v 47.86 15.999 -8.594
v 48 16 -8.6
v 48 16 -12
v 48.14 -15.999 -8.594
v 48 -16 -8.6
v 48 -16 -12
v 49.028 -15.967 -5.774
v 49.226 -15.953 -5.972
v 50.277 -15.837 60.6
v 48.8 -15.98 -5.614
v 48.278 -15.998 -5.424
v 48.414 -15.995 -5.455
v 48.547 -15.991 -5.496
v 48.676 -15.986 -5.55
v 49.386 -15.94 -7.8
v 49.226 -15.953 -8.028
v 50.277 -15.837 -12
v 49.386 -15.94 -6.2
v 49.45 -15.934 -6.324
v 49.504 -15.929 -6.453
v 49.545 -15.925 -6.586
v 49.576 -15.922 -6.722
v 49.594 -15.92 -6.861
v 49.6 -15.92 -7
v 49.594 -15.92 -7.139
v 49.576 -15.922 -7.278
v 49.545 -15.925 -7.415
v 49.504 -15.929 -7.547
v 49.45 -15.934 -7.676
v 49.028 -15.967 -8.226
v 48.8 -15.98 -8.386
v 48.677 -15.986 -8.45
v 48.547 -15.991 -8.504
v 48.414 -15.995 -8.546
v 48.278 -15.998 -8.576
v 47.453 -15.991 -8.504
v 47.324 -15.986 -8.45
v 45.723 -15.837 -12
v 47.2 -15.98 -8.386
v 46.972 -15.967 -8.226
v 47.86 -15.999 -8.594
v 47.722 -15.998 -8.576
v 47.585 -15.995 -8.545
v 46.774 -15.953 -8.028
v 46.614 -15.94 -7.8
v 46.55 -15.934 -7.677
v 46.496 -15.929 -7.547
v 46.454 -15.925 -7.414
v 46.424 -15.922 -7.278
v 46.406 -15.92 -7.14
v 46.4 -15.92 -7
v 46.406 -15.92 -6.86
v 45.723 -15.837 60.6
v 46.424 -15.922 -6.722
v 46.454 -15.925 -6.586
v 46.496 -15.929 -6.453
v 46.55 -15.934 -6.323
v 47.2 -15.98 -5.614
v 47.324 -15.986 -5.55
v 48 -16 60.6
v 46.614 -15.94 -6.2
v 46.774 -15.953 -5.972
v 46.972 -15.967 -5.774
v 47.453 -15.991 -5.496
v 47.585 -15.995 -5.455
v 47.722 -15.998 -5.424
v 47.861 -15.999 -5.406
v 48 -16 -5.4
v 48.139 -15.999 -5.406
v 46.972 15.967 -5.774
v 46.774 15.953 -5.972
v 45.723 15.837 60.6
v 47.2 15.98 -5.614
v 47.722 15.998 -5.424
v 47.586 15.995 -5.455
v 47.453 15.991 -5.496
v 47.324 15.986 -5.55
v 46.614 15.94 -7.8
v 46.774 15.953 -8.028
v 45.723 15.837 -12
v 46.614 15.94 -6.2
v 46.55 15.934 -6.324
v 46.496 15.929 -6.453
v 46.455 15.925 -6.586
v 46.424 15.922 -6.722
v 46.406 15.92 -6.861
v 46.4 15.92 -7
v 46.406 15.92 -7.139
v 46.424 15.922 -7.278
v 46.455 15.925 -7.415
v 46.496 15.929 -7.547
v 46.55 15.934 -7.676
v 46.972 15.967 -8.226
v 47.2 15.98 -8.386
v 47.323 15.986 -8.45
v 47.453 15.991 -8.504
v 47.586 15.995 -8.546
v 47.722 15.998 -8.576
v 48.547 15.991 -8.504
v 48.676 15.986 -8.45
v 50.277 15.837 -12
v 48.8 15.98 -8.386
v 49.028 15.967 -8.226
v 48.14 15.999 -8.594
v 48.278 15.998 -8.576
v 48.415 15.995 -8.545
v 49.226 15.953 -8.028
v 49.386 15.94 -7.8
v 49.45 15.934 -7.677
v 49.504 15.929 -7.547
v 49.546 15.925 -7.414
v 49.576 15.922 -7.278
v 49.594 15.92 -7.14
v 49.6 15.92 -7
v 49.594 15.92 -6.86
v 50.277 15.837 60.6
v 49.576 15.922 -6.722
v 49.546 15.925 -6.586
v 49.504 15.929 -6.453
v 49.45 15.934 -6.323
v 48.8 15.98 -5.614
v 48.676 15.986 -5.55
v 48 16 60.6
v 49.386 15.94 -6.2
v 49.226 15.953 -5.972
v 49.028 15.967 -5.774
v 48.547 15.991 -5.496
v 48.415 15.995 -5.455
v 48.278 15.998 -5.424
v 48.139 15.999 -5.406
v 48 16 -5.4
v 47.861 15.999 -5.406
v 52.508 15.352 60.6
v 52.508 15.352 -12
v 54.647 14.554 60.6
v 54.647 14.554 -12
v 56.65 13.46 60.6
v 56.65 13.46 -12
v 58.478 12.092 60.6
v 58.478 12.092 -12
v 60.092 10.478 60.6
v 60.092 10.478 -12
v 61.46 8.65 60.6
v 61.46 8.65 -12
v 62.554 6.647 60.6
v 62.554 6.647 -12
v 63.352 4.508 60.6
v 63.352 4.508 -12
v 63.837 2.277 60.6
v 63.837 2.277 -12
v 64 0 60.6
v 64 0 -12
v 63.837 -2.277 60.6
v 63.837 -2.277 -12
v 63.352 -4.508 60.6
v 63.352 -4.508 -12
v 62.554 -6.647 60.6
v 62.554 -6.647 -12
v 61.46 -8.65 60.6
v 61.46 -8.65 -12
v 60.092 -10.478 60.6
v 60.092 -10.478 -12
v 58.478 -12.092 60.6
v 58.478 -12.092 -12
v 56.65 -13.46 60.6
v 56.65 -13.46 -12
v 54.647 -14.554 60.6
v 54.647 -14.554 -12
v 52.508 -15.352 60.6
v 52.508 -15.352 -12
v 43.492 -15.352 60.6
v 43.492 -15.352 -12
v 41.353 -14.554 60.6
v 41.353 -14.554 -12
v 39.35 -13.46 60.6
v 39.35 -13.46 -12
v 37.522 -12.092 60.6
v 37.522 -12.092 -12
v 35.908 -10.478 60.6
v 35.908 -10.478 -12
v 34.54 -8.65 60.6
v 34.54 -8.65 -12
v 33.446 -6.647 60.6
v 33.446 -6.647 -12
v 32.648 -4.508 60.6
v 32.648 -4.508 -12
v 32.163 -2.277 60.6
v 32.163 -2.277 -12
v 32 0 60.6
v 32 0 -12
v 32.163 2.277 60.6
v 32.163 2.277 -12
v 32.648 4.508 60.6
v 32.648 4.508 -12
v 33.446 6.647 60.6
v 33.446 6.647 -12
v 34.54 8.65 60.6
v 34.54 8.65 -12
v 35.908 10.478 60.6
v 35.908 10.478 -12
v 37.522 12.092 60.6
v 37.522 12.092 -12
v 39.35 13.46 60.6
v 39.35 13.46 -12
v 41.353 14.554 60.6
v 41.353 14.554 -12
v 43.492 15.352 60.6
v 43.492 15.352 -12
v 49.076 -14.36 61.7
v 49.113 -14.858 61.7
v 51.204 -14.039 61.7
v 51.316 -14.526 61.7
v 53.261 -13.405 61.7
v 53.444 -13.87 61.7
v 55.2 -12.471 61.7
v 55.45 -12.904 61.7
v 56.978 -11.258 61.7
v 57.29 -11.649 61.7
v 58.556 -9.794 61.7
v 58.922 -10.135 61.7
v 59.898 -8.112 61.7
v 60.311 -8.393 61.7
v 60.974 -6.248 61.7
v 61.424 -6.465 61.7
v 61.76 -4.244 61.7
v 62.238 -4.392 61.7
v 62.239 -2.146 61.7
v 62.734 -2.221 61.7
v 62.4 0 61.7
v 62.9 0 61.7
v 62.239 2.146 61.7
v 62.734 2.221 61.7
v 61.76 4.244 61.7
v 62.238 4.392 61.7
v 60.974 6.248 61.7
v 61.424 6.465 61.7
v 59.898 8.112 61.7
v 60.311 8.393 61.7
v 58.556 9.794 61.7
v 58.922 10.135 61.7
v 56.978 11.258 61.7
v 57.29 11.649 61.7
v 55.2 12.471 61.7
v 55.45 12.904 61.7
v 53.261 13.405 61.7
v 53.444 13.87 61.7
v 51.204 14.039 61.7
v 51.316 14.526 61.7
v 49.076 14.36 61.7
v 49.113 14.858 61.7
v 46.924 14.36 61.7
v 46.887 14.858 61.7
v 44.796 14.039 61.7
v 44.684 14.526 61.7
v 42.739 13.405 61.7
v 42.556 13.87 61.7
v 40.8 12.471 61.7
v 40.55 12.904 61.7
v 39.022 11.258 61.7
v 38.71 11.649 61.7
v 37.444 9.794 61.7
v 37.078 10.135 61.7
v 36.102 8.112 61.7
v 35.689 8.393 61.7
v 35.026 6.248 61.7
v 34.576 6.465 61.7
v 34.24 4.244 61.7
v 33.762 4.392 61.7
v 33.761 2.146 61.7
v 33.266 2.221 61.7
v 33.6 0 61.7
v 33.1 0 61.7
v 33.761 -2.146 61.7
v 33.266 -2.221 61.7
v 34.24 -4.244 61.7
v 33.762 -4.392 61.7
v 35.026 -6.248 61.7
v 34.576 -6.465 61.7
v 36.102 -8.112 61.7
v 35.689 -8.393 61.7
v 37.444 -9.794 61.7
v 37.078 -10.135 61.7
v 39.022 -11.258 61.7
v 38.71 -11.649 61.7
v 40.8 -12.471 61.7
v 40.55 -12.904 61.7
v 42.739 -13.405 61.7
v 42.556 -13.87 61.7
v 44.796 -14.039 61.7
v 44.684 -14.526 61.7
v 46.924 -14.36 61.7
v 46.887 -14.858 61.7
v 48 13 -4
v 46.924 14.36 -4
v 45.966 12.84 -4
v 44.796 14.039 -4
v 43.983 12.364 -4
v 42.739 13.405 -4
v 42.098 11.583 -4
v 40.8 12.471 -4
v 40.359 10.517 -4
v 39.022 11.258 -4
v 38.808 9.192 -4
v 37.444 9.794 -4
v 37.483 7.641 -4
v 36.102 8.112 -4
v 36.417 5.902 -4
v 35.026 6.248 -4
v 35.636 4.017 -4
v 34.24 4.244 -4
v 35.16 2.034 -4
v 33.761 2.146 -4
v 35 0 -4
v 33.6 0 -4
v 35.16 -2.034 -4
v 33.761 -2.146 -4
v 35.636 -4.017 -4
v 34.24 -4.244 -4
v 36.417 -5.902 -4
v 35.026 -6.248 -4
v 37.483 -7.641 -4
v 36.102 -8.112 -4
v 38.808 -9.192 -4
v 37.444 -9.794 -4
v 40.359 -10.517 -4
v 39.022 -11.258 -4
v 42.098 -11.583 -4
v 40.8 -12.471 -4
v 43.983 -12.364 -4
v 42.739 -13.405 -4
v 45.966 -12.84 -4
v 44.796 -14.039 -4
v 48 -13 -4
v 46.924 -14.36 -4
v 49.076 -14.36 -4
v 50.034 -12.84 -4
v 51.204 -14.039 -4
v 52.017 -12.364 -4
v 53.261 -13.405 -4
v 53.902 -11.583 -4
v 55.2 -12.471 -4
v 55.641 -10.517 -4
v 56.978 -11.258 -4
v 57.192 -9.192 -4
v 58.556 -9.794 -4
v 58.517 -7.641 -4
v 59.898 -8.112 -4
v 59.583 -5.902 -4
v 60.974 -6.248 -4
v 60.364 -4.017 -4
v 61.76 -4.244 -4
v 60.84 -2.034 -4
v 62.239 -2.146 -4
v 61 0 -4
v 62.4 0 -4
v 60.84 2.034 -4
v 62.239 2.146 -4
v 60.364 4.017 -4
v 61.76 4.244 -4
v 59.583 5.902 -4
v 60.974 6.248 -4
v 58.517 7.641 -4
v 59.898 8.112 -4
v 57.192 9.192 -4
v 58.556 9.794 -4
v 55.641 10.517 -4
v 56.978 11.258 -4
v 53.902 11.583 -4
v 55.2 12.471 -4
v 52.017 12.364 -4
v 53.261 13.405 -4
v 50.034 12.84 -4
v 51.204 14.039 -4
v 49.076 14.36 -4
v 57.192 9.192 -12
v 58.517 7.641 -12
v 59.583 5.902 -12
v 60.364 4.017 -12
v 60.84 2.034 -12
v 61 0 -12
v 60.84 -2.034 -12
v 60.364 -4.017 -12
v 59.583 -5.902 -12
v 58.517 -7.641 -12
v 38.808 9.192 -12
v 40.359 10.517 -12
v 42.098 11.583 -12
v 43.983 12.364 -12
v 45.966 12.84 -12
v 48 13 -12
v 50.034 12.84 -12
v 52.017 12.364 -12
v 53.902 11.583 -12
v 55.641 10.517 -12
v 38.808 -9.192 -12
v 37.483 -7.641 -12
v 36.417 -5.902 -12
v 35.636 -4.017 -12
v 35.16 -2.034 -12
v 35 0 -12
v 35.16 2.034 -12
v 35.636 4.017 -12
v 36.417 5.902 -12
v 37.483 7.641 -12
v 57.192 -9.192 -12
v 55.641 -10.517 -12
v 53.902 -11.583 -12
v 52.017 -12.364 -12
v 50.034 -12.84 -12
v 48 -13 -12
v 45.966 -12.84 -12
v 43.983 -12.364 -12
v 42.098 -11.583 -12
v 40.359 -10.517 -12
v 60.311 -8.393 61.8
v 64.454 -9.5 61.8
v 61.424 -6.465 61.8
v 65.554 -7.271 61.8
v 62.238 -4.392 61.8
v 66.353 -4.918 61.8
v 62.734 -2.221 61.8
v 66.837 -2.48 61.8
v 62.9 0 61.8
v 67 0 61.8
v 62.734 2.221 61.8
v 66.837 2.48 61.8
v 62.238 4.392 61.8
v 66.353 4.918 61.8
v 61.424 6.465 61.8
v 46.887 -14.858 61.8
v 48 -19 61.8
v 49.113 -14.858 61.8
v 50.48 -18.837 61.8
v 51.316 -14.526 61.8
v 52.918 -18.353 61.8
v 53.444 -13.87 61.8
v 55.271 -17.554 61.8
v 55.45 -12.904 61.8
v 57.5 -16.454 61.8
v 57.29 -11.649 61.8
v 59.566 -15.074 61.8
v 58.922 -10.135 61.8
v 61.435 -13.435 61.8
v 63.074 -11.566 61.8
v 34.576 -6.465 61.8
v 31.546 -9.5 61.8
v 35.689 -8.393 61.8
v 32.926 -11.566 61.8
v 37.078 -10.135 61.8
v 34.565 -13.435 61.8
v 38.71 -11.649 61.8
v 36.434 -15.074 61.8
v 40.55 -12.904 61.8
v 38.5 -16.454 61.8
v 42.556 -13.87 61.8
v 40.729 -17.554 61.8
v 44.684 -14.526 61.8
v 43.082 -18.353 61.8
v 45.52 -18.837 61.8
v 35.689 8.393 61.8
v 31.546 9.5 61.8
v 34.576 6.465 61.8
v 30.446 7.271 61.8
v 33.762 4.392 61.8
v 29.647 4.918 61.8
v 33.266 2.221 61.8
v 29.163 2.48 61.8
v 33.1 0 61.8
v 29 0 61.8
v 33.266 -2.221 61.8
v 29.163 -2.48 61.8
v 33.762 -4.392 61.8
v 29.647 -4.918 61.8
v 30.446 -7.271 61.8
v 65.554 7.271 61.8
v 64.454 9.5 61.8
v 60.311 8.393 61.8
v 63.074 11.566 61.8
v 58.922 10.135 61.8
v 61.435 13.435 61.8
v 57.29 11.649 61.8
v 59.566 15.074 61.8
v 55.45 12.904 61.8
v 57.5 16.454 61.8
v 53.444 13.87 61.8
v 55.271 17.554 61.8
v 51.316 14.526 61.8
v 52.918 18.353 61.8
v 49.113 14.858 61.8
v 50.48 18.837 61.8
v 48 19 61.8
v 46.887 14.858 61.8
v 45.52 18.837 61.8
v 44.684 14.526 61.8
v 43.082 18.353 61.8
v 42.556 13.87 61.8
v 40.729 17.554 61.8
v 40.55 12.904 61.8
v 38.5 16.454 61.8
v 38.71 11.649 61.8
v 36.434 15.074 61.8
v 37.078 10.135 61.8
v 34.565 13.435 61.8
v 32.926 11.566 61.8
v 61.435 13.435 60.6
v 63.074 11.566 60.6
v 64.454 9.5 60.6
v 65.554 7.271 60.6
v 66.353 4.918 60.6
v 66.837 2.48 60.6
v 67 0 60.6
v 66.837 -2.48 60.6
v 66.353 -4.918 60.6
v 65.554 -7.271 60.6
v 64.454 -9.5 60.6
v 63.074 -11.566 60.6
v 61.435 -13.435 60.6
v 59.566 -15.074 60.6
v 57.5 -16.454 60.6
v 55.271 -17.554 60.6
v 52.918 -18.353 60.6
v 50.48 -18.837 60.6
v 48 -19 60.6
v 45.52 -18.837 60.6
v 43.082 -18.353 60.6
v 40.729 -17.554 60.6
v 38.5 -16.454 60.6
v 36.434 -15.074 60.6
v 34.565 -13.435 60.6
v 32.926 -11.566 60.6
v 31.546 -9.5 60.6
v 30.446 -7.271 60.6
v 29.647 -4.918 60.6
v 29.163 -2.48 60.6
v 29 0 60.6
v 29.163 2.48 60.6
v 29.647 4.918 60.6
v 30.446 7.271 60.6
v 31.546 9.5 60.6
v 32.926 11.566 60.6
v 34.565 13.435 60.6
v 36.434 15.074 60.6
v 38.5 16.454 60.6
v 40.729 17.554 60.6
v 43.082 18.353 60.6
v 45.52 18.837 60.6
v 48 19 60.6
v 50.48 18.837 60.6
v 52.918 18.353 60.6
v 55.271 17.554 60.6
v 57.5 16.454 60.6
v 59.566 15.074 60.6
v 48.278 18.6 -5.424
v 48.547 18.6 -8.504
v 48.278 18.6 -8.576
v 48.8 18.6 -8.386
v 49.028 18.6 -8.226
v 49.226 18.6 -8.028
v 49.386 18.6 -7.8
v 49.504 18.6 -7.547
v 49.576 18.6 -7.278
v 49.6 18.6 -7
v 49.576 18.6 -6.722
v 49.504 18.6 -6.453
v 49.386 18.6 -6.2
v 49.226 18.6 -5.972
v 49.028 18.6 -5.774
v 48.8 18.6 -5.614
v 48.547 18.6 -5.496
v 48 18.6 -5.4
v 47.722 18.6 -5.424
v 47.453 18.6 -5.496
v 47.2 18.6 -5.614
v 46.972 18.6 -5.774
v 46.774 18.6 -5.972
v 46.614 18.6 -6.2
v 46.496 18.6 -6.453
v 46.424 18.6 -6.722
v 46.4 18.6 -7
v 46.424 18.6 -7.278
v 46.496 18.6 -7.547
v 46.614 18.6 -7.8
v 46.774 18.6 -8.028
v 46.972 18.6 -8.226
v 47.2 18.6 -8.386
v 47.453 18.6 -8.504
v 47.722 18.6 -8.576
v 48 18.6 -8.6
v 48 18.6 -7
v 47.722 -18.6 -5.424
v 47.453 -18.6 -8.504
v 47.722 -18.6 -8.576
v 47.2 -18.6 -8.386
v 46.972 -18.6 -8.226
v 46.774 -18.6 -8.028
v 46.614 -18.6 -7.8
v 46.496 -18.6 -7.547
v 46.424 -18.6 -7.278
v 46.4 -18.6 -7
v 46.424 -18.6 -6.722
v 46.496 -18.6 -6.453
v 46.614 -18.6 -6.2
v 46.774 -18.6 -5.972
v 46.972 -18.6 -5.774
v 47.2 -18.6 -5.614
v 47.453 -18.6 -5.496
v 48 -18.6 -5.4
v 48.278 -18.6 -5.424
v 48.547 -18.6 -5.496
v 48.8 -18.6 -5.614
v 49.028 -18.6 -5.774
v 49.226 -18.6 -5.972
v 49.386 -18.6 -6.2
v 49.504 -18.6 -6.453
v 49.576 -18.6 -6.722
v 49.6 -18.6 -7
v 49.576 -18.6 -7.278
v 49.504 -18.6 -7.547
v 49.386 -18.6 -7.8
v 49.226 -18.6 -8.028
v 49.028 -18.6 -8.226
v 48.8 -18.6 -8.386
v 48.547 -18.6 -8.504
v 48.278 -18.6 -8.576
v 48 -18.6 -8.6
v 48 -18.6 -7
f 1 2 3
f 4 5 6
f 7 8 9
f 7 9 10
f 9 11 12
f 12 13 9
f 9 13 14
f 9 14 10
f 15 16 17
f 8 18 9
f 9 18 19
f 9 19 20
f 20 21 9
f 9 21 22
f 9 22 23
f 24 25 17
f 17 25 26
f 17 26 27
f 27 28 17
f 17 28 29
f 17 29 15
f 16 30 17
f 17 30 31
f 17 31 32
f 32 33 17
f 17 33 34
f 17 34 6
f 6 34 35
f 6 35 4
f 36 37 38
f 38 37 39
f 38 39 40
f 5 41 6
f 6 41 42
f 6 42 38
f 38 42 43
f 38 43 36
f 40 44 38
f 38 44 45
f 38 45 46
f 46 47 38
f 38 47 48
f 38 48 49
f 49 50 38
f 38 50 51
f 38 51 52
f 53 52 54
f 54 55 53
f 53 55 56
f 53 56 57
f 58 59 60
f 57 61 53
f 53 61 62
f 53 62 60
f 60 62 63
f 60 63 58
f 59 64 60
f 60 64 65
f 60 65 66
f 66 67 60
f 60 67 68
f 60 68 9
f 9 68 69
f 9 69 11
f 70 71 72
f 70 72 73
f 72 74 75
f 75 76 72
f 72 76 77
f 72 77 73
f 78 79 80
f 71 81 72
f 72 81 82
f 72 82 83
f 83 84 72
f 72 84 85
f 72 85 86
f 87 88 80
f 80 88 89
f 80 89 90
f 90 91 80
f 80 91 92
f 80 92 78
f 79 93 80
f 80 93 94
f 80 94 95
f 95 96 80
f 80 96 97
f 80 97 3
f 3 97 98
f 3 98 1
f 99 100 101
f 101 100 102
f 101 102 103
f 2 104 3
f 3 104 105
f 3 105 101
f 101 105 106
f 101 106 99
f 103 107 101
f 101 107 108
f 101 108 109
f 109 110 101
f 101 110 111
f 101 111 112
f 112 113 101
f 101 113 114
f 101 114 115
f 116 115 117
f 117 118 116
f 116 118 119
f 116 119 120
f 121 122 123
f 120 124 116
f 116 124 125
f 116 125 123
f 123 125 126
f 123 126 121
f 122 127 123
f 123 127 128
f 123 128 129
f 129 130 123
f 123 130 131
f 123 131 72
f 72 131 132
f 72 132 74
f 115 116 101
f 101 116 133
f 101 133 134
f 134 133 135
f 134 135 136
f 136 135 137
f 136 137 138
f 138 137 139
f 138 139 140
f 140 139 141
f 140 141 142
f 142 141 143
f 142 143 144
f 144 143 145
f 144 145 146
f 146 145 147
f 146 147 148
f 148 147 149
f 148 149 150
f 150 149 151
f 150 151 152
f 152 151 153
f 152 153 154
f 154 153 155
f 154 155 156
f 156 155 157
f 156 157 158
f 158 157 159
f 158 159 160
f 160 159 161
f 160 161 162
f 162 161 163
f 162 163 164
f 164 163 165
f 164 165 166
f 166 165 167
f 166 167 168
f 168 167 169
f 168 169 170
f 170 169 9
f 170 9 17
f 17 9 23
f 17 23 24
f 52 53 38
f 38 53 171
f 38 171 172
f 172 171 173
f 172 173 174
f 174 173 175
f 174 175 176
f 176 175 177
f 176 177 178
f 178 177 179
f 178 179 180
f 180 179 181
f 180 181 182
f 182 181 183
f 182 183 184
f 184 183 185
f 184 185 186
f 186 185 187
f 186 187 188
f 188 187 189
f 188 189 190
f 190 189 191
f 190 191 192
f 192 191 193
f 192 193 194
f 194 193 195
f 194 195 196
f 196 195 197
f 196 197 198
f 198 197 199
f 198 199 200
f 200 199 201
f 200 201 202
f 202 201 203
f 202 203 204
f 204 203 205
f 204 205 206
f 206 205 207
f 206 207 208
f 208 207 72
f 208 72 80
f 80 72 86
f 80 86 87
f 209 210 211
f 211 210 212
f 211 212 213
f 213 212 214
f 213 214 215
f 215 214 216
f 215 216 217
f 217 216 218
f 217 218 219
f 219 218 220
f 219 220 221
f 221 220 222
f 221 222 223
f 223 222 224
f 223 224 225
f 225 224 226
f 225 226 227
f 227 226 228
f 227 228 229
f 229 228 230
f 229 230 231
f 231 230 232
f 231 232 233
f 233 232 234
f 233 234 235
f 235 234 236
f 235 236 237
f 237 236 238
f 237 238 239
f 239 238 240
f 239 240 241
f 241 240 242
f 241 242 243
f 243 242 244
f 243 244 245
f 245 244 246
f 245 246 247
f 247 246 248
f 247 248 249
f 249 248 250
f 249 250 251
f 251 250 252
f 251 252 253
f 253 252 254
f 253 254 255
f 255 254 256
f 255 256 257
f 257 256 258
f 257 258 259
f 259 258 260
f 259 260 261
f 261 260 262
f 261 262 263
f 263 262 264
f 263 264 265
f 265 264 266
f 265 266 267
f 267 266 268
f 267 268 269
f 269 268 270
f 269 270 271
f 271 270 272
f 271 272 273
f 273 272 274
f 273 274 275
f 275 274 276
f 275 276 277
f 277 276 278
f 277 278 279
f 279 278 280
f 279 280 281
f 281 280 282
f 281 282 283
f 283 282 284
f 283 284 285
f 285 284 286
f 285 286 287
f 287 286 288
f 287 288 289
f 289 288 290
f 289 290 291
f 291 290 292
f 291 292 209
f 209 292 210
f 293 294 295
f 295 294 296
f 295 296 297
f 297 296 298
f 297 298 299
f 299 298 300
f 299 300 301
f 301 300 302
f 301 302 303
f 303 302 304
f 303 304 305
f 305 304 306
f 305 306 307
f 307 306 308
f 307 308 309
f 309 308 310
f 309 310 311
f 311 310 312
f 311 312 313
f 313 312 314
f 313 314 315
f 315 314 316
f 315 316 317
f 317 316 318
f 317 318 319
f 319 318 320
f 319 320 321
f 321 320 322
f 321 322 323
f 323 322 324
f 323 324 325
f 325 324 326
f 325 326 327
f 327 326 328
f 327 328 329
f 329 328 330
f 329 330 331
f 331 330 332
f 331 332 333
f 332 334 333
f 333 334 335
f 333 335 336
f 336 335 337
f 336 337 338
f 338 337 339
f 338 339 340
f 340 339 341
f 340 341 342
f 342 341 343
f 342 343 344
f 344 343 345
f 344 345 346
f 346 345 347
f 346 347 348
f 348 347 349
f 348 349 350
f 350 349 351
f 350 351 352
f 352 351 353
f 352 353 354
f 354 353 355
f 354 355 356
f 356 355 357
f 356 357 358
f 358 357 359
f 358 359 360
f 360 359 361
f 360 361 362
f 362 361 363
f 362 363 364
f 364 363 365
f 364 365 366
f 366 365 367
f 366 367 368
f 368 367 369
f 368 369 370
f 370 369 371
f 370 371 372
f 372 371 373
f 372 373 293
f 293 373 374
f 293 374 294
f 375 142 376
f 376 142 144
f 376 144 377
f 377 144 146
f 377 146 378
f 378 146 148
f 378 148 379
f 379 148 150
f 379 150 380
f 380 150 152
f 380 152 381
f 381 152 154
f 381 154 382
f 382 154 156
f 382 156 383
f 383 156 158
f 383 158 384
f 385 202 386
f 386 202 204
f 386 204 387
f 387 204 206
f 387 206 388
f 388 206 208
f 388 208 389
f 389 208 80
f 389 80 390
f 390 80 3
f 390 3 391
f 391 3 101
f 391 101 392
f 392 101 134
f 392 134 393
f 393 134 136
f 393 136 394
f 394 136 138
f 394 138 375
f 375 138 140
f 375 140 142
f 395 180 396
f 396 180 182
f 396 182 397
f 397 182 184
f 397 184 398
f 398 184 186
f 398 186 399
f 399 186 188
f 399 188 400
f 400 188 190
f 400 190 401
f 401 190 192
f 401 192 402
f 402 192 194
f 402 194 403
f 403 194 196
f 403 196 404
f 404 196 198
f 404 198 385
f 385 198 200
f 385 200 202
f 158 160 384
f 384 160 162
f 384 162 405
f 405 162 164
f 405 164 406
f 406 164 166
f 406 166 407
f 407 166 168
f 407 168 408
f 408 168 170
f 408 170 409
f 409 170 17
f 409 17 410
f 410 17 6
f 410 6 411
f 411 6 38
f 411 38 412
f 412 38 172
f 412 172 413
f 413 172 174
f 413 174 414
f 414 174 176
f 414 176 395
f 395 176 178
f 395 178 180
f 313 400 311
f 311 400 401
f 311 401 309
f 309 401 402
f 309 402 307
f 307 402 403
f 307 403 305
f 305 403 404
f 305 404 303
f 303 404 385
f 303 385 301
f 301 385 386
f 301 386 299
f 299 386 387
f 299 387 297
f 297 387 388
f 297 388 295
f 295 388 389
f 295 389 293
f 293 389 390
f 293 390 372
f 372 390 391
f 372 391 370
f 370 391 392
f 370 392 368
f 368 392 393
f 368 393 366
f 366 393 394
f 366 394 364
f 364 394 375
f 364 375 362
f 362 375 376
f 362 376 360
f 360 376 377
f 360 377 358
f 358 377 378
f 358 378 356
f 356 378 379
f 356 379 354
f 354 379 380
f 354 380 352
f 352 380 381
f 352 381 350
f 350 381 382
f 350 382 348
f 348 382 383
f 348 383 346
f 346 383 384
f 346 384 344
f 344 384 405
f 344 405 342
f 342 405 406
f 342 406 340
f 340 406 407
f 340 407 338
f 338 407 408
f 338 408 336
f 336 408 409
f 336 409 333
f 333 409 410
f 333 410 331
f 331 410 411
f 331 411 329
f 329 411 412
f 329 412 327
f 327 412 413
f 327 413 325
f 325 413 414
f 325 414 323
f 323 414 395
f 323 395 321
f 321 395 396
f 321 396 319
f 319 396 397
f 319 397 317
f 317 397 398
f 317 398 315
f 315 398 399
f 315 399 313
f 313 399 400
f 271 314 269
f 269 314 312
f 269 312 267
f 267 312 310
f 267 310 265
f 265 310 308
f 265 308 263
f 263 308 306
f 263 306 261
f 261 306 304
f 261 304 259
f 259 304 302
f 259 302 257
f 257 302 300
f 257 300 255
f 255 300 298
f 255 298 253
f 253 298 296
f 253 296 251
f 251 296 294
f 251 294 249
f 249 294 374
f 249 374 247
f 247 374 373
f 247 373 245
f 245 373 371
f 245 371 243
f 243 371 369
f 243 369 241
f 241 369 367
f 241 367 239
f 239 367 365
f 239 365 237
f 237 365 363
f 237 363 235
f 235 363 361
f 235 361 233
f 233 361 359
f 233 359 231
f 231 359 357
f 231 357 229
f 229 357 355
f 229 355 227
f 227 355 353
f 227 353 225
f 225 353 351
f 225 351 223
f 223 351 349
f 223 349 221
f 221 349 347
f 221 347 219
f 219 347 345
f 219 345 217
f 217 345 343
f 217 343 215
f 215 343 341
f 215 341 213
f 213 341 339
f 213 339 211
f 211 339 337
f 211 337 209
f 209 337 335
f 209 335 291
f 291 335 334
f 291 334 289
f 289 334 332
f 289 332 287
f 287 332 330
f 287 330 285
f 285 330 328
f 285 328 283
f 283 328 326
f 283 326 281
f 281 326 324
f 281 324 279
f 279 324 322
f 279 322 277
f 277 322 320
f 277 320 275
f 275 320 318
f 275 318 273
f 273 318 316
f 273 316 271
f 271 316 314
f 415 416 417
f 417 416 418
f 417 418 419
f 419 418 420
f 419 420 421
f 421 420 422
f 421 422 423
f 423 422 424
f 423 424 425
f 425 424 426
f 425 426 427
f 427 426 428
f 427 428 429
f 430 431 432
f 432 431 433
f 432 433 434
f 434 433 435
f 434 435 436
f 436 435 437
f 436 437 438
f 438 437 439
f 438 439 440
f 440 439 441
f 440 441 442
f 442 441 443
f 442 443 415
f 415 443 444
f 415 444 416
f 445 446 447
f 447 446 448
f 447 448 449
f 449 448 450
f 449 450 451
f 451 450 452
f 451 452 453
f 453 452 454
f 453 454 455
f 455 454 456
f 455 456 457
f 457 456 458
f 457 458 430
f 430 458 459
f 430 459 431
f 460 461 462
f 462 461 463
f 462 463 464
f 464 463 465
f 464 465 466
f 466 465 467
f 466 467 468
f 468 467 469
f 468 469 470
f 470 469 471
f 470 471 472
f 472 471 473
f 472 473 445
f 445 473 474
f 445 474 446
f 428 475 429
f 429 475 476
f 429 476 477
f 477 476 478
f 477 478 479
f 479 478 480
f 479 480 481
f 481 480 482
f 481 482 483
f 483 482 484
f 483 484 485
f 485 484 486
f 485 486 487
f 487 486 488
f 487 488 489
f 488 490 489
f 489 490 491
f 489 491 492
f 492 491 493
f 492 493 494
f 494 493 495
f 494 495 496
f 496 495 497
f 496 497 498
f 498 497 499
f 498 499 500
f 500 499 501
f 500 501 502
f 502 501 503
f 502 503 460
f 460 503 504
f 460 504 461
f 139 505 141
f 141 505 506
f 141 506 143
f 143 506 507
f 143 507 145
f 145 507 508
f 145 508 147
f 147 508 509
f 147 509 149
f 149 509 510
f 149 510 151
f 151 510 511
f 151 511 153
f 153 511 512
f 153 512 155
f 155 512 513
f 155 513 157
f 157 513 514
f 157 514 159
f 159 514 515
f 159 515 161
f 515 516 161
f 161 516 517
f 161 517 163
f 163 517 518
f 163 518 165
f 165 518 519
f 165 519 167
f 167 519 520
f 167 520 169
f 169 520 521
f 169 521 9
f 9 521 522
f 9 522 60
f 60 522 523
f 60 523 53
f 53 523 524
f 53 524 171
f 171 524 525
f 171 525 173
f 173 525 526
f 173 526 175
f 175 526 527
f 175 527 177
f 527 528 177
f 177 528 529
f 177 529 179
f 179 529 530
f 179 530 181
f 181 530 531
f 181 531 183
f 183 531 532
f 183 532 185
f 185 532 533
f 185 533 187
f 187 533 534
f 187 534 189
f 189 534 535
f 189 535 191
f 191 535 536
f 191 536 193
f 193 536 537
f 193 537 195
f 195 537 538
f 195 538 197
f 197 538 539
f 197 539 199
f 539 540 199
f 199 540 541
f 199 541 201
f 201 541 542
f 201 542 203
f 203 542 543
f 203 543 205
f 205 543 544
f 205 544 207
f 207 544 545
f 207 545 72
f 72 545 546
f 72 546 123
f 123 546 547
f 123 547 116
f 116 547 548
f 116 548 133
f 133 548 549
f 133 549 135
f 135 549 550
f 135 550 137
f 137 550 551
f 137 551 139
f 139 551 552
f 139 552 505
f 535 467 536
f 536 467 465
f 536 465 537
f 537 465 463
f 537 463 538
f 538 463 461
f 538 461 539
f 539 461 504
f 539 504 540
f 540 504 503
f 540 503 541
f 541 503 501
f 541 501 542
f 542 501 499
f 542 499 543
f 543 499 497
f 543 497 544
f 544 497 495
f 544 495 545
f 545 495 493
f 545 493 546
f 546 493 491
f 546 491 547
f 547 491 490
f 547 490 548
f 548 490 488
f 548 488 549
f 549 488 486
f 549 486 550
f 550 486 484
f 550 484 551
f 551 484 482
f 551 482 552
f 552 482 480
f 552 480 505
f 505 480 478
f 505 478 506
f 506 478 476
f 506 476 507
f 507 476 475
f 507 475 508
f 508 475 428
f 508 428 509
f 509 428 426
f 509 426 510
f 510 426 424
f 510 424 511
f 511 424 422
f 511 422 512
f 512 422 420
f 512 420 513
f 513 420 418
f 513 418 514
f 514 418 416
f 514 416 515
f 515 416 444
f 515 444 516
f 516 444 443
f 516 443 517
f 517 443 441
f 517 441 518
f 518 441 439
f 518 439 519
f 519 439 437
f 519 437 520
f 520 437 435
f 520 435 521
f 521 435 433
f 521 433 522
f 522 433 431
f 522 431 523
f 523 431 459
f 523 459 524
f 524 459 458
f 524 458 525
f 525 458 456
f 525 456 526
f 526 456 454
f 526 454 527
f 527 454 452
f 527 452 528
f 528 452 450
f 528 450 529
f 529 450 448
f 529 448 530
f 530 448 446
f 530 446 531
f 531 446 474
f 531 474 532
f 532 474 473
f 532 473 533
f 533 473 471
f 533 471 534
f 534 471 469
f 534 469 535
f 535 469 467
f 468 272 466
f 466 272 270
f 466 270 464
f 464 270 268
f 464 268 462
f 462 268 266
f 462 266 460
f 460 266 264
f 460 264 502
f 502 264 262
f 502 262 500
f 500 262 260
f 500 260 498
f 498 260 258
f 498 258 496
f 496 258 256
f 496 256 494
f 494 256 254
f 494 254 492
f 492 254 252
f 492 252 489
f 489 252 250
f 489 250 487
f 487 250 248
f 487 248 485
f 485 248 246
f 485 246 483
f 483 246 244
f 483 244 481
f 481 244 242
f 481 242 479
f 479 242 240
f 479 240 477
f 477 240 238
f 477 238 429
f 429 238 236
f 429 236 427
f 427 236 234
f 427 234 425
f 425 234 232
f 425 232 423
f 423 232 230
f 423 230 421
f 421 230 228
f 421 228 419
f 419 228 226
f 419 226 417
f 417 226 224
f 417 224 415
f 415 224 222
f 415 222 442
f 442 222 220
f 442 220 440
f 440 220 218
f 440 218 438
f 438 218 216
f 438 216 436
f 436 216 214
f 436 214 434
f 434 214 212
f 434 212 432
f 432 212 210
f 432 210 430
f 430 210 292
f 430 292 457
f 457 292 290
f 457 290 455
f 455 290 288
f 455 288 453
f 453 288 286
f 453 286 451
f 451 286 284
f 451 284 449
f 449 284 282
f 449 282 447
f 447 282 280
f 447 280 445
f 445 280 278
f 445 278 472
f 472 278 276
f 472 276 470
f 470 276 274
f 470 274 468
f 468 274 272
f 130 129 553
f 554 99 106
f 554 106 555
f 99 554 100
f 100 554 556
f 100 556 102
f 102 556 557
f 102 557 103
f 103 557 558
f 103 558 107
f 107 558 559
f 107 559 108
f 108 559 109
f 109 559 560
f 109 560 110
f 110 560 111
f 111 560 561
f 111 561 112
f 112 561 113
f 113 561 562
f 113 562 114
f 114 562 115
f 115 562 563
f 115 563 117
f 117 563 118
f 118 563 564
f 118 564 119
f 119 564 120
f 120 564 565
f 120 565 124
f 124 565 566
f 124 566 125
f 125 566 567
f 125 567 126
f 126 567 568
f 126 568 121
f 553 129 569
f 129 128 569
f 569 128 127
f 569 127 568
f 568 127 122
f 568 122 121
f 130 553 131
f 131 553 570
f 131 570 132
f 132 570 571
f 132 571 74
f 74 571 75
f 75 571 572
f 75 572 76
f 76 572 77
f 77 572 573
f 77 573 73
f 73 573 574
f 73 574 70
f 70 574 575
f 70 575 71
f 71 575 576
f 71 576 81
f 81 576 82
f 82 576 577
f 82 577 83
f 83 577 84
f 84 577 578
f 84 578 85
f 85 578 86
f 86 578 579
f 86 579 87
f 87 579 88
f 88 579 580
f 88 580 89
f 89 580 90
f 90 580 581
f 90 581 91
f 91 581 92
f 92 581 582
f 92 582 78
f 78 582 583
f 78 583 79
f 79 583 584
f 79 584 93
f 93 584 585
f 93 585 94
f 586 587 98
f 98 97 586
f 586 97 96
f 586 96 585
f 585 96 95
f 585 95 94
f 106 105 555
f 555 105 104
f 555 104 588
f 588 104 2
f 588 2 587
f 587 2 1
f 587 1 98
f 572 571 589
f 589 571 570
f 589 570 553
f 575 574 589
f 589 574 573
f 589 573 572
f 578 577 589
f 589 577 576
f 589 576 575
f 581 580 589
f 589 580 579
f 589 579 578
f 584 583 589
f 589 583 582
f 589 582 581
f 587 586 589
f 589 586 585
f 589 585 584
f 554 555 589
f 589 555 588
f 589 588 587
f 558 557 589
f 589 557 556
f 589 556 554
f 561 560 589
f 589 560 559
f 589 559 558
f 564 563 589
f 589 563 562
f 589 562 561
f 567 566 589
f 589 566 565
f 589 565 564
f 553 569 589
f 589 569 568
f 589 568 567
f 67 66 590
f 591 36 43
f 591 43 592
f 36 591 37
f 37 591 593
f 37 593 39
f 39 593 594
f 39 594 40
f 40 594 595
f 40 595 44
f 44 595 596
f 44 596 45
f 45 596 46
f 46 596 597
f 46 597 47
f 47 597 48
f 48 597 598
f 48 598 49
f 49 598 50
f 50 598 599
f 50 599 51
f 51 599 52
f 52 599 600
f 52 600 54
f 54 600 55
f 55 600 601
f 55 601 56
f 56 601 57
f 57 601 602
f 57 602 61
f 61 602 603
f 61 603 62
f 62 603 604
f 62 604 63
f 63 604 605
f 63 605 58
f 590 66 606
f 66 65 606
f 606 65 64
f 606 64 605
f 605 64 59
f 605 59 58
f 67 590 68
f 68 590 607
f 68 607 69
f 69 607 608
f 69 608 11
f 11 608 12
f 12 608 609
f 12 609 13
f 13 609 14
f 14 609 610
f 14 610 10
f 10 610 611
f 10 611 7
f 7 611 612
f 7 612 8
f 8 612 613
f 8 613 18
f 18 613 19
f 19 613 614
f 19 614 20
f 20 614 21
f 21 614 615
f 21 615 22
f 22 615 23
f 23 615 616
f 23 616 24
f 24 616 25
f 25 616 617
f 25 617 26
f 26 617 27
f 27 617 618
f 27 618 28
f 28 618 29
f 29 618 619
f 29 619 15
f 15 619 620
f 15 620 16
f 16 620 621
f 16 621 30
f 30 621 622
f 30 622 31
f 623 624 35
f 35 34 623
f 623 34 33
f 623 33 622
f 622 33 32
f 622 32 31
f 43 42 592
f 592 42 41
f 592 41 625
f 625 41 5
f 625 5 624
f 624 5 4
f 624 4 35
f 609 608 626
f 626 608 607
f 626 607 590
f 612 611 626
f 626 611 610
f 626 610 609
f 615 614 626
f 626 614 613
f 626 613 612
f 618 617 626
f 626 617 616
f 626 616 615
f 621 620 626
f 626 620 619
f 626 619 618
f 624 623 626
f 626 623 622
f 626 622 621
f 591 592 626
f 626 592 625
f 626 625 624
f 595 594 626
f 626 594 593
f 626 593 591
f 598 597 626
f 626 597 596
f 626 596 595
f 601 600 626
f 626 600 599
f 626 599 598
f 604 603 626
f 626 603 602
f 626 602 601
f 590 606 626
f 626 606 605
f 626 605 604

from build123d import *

# Parameters (mm, degrees)
SKETCH1_R                 = 16
SKETCH1_R_2               = 13
BOTTOM_RING_BAYONET_DEPTH = 8
SKETCH2_R                 = 16
SKETCH2_R_2               = 14.4
WELL_TUBE_DEPTH           = 65.7
SKETCH3_R                 = 19
SKETCH3_R_2               = 14.9
HATCH_FLANGE_DEPTH        = 1.2
SKETCH4_R                 = 1.6
BAYONET_PIN_STBD_DEPTH    = 3.6
SKETCH5_R                 = 1.6
BAYONET_PIN_PORT_DEPTH    = 3.6


with BuildPart() as part:
    # Sketch1 → Bottom_ring_bayonet (new body)
    with BuildSketch(Plane.XY.offset(-12)):
        with Locations((48, 0)):
            Circle(SKETCH1_R)
        with Locations((48, 0)):
            Circle(SKETCH1_R_2, mode=Mode.SUBTRACT)
    extrude(amount=BOTTOM_RING_BAYONET_DEPTH)

    # Sketch2 → Well_tube (add)
    with BuildSketch(Plane.XY.offset(-4)):
        with Locations((48, 0)):
            Circle(SKETCH2_R)
        with Locations((48, 0)):
            Circle(SKETCH2_R_2, mode=Mode.SUBTRACT)
    extrude(amount=WELL_TUBE_DEPTH)

    # Sketch3 → Hatch_flange (add)
    with BuildSketch(Plane.XY.offset(60.6)):
        with Locations((48, 0)):
            Circle(SKETCH3_R)
        with Locations((48, 0)):
            Circle(SKETCH3_R_2, mode=Mode.SUBTRACT)
    extrude(amount=HATCH_FLANGE_DEPTH)

    # Sketch4 → Bayonet_pin_stbd (add)
    with BuildSketch(Plane(origin=(0, 15, 0), x_dir=(1, 0, 0), z_dir=(0, 1, 0))):
        with Locations(Location((48, 7, 0), (0, 0, 90))):
            Circle(SKETCH4_R)
    extrude(amount=BAYONET_PIN_STBD_DEPTH)

    # Sketch5 → Bayonet_pin_port (add)
    with BuildSketch(Plane(origin=(0, -18.6, 0), x_dir=(1, 0, 0), z_dir=(0, 1, 0))):
        with Locations(Location((48, 7, 0), (0, 0, 90))):
            Circle(SKETCH5_R)
    extrude(amount=BAYONET_PIN_PORT_DEPTH)


solid = part.part
